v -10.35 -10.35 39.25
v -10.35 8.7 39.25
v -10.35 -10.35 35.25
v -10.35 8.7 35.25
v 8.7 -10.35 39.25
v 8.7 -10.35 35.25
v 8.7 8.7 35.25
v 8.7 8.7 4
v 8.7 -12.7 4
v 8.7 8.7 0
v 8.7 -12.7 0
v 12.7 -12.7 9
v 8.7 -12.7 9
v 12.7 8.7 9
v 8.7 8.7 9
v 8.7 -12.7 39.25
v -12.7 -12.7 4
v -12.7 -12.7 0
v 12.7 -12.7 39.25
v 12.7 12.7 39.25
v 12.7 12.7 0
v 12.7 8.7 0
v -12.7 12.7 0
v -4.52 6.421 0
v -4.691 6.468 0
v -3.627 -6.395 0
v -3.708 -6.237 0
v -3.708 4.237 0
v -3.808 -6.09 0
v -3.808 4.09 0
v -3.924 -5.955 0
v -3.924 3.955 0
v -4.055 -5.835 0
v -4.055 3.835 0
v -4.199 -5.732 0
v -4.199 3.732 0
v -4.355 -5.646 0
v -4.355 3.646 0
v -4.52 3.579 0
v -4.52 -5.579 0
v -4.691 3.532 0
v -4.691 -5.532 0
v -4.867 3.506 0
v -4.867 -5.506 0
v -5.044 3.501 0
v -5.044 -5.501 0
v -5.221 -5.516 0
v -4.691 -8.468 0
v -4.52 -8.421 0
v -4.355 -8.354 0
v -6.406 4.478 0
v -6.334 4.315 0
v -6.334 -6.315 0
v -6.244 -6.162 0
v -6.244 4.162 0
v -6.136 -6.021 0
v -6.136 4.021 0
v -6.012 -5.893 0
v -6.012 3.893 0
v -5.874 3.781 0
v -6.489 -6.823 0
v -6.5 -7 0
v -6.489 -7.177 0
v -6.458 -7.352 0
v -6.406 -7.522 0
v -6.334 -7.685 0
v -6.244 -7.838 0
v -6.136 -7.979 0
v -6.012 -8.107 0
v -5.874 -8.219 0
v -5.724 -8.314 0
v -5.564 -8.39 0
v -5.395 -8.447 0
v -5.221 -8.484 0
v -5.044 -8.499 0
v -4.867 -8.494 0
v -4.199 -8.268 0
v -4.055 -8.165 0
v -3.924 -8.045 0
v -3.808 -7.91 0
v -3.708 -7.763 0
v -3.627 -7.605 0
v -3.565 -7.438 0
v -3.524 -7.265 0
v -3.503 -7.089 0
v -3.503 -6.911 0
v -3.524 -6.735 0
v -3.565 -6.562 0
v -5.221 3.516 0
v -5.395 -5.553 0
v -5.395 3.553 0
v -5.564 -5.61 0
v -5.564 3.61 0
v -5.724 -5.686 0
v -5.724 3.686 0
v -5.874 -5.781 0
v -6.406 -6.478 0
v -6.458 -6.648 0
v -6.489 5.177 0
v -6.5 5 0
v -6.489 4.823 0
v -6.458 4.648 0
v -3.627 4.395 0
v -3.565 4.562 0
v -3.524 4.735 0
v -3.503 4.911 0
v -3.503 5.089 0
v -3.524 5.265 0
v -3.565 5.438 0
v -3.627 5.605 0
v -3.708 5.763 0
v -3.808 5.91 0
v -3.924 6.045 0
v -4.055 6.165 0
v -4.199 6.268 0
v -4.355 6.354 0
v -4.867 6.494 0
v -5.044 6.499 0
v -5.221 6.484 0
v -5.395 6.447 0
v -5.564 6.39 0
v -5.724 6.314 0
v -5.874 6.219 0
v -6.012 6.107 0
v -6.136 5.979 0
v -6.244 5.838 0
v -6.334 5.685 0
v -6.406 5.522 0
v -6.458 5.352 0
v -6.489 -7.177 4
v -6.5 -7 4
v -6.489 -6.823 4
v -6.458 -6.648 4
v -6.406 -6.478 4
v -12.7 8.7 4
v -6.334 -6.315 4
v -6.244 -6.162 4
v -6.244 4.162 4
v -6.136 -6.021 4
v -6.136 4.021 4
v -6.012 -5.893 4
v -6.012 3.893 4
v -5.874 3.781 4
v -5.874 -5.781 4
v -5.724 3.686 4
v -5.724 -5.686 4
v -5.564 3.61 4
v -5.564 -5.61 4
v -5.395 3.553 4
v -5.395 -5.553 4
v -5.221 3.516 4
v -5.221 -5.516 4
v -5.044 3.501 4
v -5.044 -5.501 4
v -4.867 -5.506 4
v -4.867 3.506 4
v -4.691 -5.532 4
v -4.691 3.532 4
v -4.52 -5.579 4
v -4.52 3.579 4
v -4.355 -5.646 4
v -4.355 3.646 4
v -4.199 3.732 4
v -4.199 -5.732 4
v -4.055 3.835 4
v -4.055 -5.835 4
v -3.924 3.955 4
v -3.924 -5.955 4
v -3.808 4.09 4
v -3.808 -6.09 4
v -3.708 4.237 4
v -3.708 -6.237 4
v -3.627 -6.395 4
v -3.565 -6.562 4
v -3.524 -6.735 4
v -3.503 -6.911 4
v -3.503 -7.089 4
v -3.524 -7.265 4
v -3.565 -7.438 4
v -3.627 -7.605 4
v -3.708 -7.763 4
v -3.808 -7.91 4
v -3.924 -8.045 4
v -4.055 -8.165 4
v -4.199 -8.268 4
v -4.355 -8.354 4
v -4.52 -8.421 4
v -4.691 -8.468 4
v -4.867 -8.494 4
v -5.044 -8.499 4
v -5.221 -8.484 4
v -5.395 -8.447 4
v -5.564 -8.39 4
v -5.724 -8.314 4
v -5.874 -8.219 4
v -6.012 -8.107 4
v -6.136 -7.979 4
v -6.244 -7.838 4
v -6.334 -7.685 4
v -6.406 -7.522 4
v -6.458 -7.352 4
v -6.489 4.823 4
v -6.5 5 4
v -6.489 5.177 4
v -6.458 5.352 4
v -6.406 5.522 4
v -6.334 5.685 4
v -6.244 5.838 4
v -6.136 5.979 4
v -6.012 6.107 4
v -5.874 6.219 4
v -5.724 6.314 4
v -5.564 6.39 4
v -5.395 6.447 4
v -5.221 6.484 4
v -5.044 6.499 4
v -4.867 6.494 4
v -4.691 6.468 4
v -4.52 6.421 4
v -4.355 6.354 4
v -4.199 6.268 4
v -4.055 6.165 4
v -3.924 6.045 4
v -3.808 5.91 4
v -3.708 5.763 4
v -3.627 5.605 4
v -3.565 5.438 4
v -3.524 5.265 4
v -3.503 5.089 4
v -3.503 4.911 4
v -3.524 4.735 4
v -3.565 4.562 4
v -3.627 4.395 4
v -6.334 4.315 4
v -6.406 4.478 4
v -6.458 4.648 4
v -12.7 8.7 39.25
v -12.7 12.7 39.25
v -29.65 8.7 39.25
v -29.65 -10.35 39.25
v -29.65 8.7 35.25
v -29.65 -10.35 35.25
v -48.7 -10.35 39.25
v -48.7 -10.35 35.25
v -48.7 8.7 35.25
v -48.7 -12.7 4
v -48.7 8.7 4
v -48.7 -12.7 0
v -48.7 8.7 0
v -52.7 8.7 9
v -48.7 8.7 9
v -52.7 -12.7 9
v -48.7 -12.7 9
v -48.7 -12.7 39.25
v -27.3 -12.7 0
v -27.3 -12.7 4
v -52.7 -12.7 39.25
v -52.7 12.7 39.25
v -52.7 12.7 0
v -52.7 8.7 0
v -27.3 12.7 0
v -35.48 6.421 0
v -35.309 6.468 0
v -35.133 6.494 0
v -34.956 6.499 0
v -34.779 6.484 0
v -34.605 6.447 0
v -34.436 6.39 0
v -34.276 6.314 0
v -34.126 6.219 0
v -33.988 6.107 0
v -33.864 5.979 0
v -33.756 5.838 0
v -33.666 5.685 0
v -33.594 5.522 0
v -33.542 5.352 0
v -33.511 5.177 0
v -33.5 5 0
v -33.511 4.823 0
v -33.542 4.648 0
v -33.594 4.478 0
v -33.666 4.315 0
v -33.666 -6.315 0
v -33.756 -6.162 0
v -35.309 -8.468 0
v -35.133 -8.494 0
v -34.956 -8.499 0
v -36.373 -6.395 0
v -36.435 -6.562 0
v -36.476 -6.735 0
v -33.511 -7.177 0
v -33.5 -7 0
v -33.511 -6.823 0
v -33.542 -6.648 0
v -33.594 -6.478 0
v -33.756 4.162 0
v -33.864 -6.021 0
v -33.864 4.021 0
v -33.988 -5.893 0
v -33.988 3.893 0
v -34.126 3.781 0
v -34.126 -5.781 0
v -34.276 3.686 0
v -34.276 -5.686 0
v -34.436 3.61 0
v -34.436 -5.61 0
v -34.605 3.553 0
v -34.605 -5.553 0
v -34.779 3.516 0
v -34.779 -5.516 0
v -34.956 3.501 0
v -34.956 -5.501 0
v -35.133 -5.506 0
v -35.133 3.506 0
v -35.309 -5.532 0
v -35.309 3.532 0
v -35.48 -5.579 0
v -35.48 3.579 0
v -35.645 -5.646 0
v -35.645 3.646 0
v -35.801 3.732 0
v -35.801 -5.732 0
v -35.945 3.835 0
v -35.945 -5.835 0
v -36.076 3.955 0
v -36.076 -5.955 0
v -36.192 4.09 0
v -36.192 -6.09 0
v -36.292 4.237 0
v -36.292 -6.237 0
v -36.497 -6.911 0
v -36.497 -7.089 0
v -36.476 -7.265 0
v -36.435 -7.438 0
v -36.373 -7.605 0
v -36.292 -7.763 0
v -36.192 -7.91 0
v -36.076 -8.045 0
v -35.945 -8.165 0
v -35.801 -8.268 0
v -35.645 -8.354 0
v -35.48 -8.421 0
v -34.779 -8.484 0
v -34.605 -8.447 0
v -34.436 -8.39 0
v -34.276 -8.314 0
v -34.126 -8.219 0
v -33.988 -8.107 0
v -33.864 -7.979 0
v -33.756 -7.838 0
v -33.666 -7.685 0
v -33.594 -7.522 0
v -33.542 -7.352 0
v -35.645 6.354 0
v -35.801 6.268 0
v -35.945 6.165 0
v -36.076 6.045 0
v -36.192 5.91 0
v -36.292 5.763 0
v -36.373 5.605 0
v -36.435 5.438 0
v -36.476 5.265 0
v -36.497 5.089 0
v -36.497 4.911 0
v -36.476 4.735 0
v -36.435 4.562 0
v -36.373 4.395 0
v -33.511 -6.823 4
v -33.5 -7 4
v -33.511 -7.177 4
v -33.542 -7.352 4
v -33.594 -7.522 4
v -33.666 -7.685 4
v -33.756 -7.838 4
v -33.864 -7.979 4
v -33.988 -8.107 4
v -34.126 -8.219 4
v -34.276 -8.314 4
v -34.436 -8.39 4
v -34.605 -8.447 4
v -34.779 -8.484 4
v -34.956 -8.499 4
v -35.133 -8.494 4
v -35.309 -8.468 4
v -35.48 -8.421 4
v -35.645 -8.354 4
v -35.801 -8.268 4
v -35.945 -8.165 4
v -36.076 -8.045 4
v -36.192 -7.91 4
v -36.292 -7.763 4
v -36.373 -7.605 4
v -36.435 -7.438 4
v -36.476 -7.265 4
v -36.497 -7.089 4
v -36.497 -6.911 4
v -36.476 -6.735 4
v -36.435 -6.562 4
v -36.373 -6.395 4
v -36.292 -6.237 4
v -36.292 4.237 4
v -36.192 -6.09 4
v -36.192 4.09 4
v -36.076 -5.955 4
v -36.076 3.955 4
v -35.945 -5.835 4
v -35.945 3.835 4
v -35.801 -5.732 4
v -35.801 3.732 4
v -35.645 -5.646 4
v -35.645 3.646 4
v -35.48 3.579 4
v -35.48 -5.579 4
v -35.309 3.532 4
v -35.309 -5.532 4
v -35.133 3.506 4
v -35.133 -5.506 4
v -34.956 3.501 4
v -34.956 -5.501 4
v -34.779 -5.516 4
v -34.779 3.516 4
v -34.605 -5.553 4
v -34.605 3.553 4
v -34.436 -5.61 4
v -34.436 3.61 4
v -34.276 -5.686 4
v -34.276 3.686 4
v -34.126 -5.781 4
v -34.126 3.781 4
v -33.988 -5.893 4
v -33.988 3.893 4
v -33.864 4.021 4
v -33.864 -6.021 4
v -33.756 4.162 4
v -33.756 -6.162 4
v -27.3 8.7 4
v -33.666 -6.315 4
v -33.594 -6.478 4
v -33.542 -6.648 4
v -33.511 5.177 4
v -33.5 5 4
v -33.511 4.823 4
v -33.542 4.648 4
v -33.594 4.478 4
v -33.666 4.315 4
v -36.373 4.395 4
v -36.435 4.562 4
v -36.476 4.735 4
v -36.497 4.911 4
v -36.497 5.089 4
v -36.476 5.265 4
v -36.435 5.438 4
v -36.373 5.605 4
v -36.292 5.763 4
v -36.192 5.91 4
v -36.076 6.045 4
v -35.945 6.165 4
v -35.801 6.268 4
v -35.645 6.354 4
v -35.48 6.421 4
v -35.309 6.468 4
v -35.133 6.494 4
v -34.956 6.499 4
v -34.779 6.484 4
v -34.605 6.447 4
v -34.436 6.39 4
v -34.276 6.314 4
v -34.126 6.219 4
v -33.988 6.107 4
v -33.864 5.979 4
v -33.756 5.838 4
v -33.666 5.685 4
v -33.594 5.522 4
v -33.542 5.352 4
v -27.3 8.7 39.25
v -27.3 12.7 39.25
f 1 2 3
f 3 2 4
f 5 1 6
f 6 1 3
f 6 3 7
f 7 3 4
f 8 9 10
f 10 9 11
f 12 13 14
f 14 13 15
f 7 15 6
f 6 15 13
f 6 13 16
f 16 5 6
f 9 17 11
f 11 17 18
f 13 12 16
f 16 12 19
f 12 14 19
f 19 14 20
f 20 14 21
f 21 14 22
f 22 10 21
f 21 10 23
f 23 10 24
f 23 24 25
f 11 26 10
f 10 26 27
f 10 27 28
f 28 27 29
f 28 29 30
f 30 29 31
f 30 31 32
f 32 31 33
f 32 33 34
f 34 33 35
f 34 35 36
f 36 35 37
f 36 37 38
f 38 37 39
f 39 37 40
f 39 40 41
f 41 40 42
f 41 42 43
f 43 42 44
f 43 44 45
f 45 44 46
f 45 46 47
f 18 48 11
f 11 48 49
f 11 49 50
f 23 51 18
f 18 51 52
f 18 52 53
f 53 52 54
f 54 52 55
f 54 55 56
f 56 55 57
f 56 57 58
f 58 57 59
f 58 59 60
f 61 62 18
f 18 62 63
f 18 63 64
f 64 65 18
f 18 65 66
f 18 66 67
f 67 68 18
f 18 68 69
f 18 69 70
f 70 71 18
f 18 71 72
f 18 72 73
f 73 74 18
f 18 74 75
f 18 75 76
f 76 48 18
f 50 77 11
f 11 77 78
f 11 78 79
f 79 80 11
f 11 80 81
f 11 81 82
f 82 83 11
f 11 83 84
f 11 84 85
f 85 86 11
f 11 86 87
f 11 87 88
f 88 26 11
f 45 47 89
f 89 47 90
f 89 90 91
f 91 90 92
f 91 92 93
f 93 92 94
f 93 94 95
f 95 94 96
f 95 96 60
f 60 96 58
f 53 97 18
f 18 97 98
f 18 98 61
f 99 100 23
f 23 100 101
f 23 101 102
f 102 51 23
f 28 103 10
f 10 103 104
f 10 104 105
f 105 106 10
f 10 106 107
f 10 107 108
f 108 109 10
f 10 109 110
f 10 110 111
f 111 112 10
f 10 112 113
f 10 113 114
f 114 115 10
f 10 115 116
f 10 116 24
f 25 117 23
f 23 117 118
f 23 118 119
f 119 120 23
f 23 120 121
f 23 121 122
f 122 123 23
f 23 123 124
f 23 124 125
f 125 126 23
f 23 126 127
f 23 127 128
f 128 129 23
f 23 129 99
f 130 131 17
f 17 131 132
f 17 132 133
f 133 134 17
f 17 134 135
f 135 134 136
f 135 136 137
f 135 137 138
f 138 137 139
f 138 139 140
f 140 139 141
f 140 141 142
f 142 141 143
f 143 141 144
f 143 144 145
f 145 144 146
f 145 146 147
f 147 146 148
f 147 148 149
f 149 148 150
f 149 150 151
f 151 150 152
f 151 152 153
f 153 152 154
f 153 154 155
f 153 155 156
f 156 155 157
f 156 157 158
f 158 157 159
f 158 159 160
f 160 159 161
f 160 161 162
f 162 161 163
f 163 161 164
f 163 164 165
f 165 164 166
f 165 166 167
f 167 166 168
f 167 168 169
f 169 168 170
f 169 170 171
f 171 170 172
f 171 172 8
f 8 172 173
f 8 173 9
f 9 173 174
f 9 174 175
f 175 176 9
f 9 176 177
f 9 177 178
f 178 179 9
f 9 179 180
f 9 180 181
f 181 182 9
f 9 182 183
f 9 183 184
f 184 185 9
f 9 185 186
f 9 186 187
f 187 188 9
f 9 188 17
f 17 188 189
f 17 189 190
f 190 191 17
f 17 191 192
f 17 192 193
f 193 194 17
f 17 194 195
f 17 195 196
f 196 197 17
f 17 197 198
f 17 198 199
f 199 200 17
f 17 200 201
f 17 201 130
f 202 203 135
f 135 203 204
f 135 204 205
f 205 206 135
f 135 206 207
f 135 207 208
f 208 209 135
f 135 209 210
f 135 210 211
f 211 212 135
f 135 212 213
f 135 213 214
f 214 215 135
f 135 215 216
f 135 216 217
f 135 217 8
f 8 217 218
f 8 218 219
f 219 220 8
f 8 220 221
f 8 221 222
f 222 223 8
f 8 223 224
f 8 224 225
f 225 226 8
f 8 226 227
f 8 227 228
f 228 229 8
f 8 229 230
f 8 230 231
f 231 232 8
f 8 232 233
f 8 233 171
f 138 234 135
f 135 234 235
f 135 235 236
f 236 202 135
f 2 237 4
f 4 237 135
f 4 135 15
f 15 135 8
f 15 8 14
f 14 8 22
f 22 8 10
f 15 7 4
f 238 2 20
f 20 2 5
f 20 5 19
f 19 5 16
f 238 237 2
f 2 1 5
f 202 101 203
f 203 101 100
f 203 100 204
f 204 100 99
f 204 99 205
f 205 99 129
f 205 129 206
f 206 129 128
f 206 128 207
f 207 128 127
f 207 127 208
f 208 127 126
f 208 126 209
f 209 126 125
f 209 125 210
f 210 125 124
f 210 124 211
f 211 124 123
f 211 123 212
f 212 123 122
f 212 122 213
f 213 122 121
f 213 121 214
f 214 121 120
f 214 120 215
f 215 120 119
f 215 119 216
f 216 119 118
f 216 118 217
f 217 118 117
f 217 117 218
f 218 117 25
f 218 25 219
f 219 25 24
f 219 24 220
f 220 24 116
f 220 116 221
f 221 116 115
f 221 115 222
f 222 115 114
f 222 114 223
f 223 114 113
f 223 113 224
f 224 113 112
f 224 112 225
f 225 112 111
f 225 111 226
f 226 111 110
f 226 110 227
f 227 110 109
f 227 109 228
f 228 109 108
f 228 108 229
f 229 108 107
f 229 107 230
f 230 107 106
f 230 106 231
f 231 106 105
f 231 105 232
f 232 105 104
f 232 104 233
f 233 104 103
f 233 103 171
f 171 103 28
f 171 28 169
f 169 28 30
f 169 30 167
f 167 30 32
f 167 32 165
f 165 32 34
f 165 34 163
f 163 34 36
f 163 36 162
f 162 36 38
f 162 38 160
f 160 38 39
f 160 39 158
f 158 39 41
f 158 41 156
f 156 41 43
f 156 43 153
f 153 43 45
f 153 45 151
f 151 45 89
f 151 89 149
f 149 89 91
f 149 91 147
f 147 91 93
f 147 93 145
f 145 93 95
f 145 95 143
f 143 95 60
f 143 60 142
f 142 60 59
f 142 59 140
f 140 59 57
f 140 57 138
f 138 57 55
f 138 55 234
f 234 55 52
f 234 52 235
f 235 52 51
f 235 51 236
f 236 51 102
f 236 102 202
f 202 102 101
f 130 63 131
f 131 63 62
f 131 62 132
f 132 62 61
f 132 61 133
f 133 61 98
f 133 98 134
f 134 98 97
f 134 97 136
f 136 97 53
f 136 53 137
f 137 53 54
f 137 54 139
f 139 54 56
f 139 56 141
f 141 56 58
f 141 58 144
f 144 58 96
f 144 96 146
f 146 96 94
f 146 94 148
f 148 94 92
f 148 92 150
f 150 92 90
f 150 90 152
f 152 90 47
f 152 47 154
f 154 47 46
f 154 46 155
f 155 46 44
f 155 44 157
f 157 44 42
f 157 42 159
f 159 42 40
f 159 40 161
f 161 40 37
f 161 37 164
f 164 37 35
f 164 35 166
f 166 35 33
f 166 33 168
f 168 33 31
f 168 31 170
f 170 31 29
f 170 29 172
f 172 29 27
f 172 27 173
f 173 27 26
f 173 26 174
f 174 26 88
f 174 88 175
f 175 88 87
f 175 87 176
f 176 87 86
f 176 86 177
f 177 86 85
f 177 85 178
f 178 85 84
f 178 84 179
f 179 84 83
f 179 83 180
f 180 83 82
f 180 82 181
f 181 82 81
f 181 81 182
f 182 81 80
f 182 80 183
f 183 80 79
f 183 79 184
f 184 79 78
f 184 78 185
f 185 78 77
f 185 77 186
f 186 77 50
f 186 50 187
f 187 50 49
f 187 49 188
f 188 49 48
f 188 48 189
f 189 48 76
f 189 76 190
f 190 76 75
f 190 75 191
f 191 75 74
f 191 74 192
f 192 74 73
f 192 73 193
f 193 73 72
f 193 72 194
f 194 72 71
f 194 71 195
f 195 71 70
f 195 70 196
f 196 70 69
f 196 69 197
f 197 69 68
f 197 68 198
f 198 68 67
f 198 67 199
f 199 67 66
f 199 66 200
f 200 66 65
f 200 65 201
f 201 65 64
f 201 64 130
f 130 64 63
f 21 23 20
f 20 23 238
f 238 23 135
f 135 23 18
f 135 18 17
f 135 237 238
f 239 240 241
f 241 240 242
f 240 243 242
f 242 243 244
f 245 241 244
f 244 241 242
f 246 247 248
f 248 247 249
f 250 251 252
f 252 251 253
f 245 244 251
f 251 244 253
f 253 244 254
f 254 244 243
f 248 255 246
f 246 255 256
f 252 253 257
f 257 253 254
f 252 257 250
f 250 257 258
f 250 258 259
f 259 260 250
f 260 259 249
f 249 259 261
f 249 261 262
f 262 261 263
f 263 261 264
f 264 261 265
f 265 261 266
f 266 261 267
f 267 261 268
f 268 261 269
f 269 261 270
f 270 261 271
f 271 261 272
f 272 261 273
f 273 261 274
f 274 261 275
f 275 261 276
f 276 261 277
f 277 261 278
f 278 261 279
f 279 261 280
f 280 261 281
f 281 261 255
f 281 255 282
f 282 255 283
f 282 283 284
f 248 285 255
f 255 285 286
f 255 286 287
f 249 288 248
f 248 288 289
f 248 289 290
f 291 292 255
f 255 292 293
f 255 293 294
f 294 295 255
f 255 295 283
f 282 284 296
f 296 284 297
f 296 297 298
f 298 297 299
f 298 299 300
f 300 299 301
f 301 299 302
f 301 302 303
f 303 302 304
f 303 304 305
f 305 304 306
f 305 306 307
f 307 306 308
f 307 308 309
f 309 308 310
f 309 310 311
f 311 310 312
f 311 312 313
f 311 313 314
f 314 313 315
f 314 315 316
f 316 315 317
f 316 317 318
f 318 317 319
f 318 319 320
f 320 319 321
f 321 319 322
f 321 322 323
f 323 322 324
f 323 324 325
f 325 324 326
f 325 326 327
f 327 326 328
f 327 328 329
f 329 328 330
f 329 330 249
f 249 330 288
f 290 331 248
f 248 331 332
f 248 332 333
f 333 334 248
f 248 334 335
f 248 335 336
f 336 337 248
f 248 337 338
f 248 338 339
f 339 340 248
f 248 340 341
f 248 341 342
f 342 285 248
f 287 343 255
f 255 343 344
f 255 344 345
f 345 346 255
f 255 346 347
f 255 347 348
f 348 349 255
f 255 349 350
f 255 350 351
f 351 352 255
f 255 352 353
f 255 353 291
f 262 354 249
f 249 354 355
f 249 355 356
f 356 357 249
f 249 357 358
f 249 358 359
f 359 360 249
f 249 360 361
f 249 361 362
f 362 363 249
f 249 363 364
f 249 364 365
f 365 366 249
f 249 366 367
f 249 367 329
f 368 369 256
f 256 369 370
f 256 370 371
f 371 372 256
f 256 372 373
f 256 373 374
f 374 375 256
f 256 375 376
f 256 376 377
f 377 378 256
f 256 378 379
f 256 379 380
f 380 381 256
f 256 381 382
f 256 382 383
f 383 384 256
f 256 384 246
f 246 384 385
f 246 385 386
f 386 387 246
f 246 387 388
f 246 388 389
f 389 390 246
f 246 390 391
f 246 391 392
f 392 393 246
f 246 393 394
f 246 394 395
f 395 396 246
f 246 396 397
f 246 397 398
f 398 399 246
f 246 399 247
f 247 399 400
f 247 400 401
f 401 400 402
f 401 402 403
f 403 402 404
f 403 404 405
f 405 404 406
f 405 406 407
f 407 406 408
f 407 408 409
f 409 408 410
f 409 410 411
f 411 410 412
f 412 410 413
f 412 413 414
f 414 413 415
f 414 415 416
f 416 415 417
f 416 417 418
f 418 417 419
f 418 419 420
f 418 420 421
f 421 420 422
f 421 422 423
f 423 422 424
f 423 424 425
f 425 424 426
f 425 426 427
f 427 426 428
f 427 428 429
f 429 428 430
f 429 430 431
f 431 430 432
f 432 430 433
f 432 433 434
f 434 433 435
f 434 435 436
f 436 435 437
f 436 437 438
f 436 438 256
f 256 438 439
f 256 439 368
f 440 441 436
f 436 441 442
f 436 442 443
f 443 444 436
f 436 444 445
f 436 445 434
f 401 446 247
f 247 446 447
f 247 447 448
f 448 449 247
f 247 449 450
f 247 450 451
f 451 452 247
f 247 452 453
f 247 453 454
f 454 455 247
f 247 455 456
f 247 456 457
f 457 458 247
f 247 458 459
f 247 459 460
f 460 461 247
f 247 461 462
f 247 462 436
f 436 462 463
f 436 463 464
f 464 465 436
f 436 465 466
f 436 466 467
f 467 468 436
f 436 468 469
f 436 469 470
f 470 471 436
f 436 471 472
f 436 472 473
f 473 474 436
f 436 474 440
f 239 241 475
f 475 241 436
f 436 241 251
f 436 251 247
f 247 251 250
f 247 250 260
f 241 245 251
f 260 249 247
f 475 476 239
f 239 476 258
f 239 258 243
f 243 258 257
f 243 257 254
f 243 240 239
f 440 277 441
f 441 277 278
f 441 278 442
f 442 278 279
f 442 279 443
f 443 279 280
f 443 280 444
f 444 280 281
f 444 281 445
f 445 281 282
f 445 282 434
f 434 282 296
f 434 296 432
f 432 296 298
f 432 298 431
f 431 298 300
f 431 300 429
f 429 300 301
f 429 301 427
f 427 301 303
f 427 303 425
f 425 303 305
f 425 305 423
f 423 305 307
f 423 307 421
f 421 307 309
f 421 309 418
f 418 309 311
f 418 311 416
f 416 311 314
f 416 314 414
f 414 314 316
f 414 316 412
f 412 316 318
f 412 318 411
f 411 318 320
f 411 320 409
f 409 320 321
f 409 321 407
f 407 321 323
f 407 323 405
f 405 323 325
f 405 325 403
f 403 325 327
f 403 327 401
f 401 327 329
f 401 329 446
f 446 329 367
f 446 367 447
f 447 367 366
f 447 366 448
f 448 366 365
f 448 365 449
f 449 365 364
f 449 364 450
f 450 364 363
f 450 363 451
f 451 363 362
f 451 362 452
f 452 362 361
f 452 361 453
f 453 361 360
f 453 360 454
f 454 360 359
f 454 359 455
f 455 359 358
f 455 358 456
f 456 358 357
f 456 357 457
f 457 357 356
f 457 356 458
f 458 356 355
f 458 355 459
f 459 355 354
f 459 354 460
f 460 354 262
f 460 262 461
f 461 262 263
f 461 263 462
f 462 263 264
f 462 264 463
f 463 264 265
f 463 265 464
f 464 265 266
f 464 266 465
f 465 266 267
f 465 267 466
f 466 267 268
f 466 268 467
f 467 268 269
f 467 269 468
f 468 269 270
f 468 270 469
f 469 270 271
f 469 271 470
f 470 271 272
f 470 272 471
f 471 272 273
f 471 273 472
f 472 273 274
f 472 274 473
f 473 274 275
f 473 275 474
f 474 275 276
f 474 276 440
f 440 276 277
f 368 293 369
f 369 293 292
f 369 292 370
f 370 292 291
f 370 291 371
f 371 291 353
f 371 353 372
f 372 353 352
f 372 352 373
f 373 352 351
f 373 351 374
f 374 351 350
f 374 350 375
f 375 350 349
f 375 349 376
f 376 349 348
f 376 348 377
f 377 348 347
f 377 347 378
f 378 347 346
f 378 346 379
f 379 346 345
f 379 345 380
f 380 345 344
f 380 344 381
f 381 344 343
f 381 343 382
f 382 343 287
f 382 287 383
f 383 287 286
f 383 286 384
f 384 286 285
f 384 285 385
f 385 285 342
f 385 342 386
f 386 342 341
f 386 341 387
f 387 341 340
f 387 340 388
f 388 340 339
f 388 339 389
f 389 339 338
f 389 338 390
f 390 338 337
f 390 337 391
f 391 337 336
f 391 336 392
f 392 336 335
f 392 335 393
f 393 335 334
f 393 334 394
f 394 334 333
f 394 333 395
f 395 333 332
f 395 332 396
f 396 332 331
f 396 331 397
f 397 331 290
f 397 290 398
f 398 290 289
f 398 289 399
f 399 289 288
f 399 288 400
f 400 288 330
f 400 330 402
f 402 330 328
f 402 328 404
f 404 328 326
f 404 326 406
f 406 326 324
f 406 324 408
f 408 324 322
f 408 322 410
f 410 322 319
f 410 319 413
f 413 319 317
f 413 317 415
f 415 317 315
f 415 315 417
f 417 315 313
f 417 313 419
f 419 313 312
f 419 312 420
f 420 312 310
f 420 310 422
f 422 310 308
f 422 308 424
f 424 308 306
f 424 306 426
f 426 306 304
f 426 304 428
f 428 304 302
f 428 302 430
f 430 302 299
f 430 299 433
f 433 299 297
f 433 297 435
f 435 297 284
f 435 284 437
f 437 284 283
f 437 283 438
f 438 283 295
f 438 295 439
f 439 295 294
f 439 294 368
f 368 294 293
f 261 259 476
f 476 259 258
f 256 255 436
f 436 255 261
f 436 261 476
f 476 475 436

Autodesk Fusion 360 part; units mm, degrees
sketch "Sketch1" plane through (0, 0, 0) normal (0, 0, 1) x (1, 0, 0)
  line L0 (12.7, 12.7) -> (-12.7, 12.7)
  line L1 (-12.7, 12.7) -> (-12.7, -12.7)
  line L2 (-12.7, -12.7) -> (12.7, -12.7)
  line L3 (12.7, -12.7) -> (12.7, 12.7)
  line L4 (12.7, 12.7) -> (-12.7, -12.7) construction
  line L5 (-12.7, 12.7) -> (12.7, -12.7) construction
  line L6 (-12.7, 12.7) -> (12.7, 12.7)
  line L7 (12.7, 12.7) -> (12.7, 8.7)
  line L8 (12.7, 8.7) -> (-12.7, 8.7)
  line L9 (-12.7, 8.7) -> (-12.7, 12.7)
  line L10 (12.7, 12.7) -> (8.7, 12.7)
  line L11 (8.7, 12.7) -> (8.7, -12.7)
  line L12 (8.7, -12.7) -> (12.7, -12.7)
  line L13 (12.7, -12.7) -> (12.7, 12.7)
  circle A0 centre (-5, 5) radius 1.5
  circle A1 centre (-5, -7) radius 1.5
  dimension "d1" = 25.4
  dimension "d2" = 25.4
  dimension "d5" = 4
  dimension "d6" = 4
  dimension "d17" = 3
  dimension "d18" = 3
extrude "Extrude1" add sketch "Sketch1" along normal blind 4 makes body 1
extrude "Extrude2" add sketch "Sketch1" along normal blind 39.25 contours L0 L3 L6 L7 L8 L10 L11 L13 | L0 L1 L6 L8 L9 L11 bodies 1
extrude "Extrude3" add sketch "Sketch1" along normal blind 39.25 contours L2 L3 L8 L11 L12 L13 bodies 1
extrude "Extrude4" cut sketch "Sketch1" along normal blind 9 contours L2 L3 L8 L11 L12 L13 bodies 1
sketch "Sketch2" plane through (0, 0, 39.25) normal (0, 0, 1) x (1, 0, 0)
  line L0 (12.7, 12.7) -> (-12.7, 12.7)
  line L1 (-12.7, 12.7) -> (-12.7, 8.7)
  line L2 (-12.7, 8.7) -> (8.7, 8.7)
  line L3 (12.7, -12.7) -> (12.7, 12.7)
  line L4 (8.7, 8.7) -> (-10.35, 8.7)
  line L5 (-10.35, 8.7) -> (-10.35, -10.35)
  line L6 (-10.35, -10.35) -> (8.7, -10.35)
  line L7 (8.7, -10.35) -> (8.7, 8.7)
  line L8 (8.7, 8.7) -> (8.7, -12.7)
  line L9 (8.7, -12.7) -> (12.7, -12.7)
  dimension "d13" = 19.05
  dimension "d14" = 19.05
extrude "Extrude5" add sketch "Sketch2" against normal blind 4 contours L2 L4 L5 L6 L7 L8 bodies 1
ref_plane "WorkPlane1" through (-20, 0, 0) normal (1, 0, 0) x (0, 1, 0)
mirror "Mirror1" about plane through (-20, 0, 0) normal (1, 0, 0) of bodies 1 makes body 2
